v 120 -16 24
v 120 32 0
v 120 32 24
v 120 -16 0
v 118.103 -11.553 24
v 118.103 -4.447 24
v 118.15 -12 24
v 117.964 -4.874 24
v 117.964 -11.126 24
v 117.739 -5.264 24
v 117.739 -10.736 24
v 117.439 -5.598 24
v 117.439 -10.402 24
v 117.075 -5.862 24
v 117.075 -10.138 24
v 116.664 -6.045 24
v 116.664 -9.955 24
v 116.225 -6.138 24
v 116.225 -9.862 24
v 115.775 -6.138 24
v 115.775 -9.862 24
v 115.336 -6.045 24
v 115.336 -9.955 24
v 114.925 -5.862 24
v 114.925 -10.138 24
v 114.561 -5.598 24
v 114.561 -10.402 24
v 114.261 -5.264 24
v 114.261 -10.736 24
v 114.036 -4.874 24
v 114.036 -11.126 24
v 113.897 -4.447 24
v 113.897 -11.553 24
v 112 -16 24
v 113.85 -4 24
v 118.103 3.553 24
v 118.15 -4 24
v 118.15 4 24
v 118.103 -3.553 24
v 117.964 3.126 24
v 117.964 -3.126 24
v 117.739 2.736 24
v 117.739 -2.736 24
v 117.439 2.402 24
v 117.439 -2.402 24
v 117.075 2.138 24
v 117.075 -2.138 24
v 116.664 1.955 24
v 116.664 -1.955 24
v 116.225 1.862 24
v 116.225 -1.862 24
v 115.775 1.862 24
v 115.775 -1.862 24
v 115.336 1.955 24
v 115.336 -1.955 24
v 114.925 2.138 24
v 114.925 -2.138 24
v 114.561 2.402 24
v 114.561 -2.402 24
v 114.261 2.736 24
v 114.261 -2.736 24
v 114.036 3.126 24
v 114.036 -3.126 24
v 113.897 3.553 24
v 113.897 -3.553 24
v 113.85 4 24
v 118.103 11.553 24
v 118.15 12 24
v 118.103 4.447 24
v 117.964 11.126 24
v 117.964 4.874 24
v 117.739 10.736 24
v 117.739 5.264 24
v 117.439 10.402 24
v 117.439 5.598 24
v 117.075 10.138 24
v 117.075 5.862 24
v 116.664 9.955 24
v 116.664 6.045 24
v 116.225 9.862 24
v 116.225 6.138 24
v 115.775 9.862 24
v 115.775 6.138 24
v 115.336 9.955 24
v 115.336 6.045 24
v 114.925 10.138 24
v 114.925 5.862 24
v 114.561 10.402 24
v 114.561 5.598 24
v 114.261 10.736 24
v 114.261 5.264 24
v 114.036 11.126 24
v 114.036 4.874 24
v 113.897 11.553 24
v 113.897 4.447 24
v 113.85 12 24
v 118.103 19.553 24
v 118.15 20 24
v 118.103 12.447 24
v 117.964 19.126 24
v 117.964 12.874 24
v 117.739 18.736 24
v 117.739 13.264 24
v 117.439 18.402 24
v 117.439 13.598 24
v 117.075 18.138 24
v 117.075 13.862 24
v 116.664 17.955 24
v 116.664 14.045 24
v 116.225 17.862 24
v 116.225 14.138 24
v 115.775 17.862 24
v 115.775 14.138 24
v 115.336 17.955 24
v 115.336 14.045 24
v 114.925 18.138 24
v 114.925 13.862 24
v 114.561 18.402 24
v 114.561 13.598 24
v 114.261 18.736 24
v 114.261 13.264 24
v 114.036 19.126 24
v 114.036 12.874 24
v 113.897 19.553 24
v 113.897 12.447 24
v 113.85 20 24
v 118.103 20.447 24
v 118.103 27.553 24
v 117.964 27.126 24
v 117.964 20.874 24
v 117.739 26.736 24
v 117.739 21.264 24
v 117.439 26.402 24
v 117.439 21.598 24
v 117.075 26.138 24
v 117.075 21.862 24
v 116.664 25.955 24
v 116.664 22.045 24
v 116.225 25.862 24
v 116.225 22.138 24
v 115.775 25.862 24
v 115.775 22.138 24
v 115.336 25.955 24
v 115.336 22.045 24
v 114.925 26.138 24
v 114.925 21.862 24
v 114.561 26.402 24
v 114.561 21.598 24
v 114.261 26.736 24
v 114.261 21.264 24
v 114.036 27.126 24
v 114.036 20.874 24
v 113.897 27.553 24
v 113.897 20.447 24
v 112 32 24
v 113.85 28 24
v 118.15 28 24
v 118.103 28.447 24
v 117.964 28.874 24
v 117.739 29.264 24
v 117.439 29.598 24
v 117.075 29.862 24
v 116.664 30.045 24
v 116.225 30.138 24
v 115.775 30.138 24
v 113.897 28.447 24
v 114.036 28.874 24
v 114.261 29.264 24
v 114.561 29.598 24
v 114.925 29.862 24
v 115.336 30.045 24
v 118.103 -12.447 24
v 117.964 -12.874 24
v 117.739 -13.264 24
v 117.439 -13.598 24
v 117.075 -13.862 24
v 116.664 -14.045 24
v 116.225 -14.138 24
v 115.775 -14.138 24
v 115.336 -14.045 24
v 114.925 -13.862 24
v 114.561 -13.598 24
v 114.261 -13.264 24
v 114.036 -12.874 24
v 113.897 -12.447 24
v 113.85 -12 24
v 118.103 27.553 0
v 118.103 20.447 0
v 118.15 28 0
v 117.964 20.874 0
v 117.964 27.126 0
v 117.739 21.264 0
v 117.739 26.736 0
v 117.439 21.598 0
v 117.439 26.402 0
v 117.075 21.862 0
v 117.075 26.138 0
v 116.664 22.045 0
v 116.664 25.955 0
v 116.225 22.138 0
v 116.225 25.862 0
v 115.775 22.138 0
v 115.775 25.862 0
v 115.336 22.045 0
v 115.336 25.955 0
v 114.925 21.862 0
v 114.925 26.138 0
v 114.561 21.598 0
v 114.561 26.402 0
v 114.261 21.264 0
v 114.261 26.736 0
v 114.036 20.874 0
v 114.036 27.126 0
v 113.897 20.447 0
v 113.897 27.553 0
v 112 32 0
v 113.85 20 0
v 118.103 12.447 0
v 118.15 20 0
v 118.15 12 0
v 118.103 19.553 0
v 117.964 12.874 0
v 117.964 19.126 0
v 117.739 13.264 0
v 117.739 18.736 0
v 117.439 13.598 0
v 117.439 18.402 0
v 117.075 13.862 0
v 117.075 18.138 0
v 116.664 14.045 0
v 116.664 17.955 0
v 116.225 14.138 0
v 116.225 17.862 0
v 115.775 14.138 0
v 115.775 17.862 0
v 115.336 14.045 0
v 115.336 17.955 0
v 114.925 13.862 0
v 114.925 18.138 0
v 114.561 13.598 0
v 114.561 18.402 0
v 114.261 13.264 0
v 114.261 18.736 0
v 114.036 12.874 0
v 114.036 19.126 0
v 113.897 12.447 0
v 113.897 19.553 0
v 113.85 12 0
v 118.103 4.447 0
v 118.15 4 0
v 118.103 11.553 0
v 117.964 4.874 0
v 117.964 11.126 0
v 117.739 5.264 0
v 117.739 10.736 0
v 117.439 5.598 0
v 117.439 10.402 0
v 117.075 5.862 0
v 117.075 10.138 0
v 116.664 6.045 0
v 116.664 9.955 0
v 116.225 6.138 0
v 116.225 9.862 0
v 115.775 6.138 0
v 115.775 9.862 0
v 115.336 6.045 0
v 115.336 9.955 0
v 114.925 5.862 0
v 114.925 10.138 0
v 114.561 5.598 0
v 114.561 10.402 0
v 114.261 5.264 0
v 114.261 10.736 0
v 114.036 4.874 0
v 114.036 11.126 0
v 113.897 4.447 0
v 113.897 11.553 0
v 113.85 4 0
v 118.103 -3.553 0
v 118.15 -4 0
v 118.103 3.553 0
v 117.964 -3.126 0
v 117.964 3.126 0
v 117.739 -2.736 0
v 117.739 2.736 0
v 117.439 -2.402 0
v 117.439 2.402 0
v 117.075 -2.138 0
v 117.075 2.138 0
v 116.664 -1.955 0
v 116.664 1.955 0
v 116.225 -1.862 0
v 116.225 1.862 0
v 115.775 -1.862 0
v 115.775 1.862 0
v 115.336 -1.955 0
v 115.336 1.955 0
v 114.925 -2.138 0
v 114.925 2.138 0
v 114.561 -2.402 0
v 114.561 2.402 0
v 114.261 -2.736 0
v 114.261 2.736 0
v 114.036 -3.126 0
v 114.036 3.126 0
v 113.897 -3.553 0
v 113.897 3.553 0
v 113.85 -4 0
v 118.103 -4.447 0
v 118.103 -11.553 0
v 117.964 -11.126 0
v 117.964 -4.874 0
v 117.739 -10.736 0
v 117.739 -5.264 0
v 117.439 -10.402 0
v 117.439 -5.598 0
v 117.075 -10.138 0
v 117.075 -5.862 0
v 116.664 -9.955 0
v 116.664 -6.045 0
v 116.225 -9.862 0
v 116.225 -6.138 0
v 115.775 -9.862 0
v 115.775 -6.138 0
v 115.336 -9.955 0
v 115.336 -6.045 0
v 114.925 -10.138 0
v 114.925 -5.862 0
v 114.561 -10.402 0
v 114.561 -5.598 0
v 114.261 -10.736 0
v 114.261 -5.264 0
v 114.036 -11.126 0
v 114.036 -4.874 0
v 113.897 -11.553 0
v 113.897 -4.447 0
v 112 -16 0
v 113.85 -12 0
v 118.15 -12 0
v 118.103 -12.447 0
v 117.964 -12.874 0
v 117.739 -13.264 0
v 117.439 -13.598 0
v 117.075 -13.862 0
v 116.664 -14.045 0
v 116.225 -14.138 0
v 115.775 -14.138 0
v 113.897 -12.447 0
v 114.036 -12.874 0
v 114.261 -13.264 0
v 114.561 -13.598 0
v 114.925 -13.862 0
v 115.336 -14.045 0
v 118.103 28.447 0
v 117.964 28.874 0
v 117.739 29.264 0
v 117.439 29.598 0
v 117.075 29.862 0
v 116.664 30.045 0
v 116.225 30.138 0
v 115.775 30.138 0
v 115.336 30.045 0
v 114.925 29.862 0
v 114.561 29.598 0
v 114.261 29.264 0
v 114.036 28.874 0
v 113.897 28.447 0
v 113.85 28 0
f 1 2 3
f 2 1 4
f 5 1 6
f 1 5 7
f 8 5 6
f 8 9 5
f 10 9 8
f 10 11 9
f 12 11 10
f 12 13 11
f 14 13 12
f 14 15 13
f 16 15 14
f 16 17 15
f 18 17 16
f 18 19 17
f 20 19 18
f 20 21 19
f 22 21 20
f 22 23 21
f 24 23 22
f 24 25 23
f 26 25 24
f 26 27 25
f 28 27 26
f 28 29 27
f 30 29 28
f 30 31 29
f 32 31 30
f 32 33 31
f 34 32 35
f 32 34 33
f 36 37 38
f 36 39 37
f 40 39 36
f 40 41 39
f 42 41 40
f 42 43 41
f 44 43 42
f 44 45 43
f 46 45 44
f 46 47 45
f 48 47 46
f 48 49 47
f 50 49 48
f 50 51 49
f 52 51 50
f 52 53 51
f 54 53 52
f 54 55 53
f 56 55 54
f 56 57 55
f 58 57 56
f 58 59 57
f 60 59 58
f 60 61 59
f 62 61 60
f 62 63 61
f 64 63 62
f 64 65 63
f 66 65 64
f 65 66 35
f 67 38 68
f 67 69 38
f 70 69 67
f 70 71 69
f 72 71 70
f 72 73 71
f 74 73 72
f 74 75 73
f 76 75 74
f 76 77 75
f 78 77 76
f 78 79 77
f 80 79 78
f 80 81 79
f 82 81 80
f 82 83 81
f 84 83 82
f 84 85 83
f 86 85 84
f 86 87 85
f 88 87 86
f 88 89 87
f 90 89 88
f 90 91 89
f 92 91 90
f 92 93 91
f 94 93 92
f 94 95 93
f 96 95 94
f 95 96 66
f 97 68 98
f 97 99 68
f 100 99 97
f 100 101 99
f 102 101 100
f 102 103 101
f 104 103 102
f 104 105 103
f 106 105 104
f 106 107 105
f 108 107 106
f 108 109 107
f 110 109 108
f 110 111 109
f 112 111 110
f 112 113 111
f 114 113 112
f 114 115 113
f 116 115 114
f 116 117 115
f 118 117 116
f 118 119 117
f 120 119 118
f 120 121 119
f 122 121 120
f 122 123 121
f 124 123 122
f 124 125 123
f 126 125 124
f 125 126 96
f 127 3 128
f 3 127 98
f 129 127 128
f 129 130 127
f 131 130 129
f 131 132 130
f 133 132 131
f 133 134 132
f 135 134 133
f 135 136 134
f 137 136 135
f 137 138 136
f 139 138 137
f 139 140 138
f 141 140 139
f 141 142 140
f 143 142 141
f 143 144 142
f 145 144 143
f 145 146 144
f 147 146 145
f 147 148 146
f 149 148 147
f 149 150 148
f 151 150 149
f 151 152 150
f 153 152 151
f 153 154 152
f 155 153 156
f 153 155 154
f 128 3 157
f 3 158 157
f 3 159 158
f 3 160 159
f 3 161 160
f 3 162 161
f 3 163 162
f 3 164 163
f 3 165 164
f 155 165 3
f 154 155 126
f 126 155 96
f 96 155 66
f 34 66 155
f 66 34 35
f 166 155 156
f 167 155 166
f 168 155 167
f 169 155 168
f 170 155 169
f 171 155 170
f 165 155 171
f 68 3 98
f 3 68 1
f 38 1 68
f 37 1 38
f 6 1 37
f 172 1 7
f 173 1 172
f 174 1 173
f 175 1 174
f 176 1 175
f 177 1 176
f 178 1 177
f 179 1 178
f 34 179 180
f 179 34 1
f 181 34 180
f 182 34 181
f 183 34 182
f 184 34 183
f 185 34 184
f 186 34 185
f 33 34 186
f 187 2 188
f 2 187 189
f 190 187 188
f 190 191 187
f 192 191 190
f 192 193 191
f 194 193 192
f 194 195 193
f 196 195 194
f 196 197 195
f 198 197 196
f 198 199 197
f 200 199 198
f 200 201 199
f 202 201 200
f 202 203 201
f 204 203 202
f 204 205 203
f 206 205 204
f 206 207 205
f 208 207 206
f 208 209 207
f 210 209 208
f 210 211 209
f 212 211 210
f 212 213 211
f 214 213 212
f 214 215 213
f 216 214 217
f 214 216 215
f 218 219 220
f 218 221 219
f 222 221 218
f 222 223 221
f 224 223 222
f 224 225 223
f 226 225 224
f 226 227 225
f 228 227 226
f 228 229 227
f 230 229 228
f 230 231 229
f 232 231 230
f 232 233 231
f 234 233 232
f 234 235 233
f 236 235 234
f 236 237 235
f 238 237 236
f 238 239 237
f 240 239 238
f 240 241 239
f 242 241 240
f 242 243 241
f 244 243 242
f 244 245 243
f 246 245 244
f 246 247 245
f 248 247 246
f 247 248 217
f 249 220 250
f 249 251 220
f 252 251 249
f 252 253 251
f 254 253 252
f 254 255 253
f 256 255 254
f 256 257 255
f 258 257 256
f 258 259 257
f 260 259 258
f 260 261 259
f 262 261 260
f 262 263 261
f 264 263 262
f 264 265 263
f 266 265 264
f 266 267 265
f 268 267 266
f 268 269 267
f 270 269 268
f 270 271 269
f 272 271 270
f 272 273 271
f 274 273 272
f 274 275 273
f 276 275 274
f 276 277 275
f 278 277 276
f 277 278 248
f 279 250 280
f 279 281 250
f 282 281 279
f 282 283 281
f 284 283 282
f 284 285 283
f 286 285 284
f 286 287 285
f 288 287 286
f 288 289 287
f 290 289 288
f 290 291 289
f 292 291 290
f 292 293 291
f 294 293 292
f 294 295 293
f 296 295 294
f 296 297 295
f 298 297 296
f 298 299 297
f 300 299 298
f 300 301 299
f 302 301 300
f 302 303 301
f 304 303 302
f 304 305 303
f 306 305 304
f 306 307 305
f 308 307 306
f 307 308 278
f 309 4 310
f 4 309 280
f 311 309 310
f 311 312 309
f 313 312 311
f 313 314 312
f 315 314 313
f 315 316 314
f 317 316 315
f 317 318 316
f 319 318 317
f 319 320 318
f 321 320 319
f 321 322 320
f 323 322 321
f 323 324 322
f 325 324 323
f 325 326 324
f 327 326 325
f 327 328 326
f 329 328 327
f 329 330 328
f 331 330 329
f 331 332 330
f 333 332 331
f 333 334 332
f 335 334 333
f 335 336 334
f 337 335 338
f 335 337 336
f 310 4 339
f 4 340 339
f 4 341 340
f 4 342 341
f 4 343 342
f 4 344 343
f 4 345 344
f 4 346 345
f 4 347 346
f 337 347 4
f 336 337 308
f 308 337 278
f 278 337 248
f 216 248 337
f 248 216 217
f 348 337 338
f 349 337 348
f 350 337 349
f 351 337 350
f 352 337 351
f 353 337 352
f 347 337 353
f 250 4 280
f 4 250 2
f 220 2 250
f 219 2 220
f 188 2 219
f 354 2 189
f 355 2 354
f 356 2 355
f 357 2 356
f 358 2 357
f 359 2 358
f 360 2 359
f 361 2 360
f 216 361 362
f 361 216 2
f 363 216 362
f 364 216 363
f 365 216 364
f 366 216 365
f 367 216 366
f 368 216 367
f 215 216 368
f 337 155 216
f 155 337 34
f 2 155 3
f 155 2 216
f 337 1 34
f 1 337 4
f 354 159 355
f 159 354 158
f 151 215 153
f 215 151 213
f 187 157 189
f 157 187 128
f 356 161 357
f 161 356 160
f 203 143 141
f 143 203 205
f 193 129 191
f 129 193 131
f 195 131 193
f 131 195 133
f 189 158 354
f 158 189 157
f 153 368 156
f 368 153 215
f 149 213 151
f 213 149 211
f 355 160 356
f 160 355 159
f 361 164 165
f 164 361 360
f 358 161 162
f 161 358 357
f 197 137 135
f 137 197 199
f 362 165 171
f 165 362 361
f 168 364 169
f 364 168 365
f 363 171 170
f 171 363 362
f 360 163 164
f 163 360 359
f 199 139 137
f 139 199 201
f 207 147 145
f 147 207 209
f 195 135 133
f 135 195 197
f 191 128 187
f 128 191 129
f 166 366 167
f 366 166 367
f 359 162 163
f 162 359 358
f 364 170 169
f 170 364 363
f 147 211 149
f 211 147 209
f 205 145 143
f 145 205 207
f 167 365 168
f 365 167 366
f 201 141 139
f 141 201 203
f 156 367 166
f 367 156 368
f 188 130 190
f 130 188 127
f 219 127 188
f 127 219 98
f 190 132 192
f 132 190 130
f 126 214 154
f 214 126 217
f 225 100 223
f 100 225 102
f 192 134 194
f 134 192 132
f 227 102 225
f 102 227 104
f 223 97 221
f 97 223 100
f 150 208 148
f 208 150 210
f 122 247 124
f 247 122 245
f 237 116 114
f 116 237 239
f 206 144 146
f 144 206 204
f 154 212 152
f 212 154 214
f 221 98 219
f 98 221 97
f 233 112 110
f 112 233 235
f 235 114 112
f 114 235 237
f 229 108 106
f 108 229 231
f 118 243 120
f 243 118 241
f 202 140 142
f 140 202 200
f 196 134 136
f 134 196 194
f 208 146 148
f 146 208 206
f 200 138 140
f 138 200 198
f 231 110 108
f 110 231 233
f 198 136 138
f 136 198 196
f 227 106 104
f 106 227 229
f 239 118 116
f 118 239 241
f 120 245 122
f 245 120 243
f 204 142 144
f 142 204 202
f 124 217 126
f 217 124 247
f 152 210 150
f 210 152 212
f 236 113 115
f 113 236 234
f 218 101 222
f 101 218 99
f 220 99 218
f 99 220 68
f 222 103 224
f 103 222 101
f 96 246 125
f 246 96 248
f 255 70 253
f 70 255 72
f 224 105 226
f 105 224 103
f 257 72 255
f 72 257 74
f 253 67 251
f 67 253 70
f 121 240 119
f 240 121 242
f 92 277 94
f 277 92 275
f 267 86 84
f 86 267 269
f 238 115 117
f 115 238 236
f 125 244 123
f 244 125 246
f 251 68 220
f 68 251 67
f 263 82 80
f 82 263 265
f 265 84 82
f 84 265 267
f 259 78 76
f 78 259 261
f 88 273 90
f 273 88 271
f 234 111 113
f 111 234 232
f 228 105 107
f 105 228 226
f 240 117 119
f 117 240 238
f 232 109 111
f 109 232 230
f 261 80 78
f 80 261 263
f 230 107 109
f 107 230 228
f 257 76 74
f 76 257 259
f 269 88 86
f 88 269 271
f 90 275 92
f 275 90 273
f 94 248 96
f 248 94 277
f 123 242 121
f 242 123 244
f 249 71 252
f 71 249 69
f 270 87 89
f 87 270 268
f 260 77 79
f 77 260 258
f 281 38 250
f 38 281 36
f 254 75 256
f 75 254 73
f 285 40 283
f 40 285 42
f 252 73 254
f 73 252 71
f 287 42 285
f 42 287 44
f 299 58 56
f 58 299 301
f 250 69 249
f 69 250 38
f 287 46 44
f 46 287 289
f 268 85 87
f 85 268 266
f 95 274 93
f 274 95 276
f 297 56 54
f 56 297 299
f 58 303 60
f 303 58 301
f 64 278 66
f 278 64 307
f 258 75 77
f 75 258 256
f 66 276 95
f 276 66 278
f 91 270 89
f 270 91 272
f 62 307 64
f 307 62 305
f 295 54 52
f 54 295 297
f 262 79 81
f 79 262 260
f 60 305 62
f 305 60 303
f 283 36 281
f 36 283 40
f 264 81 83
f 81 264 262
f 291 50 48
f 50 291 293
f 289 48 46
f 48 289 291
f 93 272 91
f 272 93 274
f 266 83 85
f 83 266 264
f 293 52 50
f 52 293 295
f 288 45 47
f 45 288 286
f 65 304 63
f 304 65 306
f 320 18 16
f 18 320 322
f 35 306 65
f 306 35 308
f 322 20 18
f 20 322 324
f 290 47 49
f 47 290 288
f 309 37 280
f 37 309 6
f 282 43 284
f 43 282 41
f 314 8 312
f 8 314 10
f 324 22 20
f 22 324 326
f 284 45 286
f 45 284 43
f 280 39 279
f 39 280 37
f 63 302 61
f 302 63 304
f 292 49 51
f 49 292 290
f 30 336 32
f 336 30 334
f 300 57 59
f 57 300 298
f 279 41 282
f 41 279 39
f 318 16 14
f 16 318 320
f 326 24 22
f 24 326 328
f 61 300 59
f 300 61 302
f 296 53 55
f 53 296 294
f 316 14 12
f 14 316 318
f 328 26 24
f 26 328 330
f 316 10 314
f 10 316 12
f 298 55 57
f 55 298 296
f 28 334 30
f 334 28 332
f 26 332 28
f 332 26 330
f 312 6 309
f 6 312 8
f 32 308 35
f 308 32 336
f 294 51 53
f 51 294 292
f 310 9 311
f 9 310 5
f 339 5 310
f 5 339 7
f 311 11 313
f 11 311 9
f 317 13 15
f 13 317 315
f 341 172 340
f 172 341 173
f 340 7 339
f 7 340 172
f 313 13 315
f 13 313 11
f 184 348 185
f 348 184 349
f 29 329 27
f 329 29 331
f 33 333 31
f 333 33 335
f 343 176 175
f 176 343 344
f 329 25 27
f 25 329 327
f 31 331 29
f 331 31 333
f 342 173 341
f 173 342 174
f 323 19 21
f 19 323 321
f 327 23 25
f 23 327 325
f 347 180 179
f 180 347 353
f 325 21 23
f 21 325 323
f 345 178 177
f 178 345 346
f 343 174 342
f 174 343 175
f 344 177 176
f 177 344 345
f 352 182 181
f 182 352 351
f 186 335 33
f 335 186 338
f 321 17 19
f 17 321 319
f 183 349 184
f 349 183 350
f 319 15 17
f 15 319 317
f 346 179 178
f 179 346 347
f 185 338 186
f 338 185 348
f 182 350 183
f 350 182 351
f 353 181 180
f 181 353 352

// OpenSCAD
difference(){
    translate([112,-16,0])
    cube([8,48,24]);
    
    // Hole 1
    translate([116,28,-2])
    cylinder(r=2.15,44, $fn=30);
    
    // Hole 2
    translate([116,20,-2])
    cylinder(r=2.15,44, $fn=30);
    
    // Hole 3
    translate([116,12,-2])
    cylinder(r=2.15,44, $fn=30);
    
    // Hole 4
    translate([116,4,-2])
    cylinder(r=2.15,44, $fn=30);
    
    // Hole 5
    translate([116,-4,-2])
    cylinder(r=2.15,44, $fn=30);
    
    // Hole 6
    translate([116,-12,-2])
    cylinder(r=2.15,44, $fn=30);
}
